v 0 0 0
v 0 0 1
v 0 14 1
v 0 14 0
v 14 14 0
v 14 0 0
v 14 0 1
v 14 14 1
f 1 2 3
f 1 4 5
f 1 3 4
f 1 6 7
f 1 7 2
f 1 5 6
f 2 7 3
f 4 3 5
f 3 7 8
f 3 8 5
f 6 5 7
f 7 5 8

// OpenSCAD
/* Warning, this is a very basic generator with a lot of approximation 
input data : [TQFP, Z7X, 14x14x1.0mm, 128, , A, C04-00226A]
generated by com.zoubworld.electronics.cad.model3d.Basic
Date : Sun Feb 15 10:50:48 CET 2026
*/

//body
color("black")
translate([0,0,0])
cube([14.0,14.0,1.0], center=false);
